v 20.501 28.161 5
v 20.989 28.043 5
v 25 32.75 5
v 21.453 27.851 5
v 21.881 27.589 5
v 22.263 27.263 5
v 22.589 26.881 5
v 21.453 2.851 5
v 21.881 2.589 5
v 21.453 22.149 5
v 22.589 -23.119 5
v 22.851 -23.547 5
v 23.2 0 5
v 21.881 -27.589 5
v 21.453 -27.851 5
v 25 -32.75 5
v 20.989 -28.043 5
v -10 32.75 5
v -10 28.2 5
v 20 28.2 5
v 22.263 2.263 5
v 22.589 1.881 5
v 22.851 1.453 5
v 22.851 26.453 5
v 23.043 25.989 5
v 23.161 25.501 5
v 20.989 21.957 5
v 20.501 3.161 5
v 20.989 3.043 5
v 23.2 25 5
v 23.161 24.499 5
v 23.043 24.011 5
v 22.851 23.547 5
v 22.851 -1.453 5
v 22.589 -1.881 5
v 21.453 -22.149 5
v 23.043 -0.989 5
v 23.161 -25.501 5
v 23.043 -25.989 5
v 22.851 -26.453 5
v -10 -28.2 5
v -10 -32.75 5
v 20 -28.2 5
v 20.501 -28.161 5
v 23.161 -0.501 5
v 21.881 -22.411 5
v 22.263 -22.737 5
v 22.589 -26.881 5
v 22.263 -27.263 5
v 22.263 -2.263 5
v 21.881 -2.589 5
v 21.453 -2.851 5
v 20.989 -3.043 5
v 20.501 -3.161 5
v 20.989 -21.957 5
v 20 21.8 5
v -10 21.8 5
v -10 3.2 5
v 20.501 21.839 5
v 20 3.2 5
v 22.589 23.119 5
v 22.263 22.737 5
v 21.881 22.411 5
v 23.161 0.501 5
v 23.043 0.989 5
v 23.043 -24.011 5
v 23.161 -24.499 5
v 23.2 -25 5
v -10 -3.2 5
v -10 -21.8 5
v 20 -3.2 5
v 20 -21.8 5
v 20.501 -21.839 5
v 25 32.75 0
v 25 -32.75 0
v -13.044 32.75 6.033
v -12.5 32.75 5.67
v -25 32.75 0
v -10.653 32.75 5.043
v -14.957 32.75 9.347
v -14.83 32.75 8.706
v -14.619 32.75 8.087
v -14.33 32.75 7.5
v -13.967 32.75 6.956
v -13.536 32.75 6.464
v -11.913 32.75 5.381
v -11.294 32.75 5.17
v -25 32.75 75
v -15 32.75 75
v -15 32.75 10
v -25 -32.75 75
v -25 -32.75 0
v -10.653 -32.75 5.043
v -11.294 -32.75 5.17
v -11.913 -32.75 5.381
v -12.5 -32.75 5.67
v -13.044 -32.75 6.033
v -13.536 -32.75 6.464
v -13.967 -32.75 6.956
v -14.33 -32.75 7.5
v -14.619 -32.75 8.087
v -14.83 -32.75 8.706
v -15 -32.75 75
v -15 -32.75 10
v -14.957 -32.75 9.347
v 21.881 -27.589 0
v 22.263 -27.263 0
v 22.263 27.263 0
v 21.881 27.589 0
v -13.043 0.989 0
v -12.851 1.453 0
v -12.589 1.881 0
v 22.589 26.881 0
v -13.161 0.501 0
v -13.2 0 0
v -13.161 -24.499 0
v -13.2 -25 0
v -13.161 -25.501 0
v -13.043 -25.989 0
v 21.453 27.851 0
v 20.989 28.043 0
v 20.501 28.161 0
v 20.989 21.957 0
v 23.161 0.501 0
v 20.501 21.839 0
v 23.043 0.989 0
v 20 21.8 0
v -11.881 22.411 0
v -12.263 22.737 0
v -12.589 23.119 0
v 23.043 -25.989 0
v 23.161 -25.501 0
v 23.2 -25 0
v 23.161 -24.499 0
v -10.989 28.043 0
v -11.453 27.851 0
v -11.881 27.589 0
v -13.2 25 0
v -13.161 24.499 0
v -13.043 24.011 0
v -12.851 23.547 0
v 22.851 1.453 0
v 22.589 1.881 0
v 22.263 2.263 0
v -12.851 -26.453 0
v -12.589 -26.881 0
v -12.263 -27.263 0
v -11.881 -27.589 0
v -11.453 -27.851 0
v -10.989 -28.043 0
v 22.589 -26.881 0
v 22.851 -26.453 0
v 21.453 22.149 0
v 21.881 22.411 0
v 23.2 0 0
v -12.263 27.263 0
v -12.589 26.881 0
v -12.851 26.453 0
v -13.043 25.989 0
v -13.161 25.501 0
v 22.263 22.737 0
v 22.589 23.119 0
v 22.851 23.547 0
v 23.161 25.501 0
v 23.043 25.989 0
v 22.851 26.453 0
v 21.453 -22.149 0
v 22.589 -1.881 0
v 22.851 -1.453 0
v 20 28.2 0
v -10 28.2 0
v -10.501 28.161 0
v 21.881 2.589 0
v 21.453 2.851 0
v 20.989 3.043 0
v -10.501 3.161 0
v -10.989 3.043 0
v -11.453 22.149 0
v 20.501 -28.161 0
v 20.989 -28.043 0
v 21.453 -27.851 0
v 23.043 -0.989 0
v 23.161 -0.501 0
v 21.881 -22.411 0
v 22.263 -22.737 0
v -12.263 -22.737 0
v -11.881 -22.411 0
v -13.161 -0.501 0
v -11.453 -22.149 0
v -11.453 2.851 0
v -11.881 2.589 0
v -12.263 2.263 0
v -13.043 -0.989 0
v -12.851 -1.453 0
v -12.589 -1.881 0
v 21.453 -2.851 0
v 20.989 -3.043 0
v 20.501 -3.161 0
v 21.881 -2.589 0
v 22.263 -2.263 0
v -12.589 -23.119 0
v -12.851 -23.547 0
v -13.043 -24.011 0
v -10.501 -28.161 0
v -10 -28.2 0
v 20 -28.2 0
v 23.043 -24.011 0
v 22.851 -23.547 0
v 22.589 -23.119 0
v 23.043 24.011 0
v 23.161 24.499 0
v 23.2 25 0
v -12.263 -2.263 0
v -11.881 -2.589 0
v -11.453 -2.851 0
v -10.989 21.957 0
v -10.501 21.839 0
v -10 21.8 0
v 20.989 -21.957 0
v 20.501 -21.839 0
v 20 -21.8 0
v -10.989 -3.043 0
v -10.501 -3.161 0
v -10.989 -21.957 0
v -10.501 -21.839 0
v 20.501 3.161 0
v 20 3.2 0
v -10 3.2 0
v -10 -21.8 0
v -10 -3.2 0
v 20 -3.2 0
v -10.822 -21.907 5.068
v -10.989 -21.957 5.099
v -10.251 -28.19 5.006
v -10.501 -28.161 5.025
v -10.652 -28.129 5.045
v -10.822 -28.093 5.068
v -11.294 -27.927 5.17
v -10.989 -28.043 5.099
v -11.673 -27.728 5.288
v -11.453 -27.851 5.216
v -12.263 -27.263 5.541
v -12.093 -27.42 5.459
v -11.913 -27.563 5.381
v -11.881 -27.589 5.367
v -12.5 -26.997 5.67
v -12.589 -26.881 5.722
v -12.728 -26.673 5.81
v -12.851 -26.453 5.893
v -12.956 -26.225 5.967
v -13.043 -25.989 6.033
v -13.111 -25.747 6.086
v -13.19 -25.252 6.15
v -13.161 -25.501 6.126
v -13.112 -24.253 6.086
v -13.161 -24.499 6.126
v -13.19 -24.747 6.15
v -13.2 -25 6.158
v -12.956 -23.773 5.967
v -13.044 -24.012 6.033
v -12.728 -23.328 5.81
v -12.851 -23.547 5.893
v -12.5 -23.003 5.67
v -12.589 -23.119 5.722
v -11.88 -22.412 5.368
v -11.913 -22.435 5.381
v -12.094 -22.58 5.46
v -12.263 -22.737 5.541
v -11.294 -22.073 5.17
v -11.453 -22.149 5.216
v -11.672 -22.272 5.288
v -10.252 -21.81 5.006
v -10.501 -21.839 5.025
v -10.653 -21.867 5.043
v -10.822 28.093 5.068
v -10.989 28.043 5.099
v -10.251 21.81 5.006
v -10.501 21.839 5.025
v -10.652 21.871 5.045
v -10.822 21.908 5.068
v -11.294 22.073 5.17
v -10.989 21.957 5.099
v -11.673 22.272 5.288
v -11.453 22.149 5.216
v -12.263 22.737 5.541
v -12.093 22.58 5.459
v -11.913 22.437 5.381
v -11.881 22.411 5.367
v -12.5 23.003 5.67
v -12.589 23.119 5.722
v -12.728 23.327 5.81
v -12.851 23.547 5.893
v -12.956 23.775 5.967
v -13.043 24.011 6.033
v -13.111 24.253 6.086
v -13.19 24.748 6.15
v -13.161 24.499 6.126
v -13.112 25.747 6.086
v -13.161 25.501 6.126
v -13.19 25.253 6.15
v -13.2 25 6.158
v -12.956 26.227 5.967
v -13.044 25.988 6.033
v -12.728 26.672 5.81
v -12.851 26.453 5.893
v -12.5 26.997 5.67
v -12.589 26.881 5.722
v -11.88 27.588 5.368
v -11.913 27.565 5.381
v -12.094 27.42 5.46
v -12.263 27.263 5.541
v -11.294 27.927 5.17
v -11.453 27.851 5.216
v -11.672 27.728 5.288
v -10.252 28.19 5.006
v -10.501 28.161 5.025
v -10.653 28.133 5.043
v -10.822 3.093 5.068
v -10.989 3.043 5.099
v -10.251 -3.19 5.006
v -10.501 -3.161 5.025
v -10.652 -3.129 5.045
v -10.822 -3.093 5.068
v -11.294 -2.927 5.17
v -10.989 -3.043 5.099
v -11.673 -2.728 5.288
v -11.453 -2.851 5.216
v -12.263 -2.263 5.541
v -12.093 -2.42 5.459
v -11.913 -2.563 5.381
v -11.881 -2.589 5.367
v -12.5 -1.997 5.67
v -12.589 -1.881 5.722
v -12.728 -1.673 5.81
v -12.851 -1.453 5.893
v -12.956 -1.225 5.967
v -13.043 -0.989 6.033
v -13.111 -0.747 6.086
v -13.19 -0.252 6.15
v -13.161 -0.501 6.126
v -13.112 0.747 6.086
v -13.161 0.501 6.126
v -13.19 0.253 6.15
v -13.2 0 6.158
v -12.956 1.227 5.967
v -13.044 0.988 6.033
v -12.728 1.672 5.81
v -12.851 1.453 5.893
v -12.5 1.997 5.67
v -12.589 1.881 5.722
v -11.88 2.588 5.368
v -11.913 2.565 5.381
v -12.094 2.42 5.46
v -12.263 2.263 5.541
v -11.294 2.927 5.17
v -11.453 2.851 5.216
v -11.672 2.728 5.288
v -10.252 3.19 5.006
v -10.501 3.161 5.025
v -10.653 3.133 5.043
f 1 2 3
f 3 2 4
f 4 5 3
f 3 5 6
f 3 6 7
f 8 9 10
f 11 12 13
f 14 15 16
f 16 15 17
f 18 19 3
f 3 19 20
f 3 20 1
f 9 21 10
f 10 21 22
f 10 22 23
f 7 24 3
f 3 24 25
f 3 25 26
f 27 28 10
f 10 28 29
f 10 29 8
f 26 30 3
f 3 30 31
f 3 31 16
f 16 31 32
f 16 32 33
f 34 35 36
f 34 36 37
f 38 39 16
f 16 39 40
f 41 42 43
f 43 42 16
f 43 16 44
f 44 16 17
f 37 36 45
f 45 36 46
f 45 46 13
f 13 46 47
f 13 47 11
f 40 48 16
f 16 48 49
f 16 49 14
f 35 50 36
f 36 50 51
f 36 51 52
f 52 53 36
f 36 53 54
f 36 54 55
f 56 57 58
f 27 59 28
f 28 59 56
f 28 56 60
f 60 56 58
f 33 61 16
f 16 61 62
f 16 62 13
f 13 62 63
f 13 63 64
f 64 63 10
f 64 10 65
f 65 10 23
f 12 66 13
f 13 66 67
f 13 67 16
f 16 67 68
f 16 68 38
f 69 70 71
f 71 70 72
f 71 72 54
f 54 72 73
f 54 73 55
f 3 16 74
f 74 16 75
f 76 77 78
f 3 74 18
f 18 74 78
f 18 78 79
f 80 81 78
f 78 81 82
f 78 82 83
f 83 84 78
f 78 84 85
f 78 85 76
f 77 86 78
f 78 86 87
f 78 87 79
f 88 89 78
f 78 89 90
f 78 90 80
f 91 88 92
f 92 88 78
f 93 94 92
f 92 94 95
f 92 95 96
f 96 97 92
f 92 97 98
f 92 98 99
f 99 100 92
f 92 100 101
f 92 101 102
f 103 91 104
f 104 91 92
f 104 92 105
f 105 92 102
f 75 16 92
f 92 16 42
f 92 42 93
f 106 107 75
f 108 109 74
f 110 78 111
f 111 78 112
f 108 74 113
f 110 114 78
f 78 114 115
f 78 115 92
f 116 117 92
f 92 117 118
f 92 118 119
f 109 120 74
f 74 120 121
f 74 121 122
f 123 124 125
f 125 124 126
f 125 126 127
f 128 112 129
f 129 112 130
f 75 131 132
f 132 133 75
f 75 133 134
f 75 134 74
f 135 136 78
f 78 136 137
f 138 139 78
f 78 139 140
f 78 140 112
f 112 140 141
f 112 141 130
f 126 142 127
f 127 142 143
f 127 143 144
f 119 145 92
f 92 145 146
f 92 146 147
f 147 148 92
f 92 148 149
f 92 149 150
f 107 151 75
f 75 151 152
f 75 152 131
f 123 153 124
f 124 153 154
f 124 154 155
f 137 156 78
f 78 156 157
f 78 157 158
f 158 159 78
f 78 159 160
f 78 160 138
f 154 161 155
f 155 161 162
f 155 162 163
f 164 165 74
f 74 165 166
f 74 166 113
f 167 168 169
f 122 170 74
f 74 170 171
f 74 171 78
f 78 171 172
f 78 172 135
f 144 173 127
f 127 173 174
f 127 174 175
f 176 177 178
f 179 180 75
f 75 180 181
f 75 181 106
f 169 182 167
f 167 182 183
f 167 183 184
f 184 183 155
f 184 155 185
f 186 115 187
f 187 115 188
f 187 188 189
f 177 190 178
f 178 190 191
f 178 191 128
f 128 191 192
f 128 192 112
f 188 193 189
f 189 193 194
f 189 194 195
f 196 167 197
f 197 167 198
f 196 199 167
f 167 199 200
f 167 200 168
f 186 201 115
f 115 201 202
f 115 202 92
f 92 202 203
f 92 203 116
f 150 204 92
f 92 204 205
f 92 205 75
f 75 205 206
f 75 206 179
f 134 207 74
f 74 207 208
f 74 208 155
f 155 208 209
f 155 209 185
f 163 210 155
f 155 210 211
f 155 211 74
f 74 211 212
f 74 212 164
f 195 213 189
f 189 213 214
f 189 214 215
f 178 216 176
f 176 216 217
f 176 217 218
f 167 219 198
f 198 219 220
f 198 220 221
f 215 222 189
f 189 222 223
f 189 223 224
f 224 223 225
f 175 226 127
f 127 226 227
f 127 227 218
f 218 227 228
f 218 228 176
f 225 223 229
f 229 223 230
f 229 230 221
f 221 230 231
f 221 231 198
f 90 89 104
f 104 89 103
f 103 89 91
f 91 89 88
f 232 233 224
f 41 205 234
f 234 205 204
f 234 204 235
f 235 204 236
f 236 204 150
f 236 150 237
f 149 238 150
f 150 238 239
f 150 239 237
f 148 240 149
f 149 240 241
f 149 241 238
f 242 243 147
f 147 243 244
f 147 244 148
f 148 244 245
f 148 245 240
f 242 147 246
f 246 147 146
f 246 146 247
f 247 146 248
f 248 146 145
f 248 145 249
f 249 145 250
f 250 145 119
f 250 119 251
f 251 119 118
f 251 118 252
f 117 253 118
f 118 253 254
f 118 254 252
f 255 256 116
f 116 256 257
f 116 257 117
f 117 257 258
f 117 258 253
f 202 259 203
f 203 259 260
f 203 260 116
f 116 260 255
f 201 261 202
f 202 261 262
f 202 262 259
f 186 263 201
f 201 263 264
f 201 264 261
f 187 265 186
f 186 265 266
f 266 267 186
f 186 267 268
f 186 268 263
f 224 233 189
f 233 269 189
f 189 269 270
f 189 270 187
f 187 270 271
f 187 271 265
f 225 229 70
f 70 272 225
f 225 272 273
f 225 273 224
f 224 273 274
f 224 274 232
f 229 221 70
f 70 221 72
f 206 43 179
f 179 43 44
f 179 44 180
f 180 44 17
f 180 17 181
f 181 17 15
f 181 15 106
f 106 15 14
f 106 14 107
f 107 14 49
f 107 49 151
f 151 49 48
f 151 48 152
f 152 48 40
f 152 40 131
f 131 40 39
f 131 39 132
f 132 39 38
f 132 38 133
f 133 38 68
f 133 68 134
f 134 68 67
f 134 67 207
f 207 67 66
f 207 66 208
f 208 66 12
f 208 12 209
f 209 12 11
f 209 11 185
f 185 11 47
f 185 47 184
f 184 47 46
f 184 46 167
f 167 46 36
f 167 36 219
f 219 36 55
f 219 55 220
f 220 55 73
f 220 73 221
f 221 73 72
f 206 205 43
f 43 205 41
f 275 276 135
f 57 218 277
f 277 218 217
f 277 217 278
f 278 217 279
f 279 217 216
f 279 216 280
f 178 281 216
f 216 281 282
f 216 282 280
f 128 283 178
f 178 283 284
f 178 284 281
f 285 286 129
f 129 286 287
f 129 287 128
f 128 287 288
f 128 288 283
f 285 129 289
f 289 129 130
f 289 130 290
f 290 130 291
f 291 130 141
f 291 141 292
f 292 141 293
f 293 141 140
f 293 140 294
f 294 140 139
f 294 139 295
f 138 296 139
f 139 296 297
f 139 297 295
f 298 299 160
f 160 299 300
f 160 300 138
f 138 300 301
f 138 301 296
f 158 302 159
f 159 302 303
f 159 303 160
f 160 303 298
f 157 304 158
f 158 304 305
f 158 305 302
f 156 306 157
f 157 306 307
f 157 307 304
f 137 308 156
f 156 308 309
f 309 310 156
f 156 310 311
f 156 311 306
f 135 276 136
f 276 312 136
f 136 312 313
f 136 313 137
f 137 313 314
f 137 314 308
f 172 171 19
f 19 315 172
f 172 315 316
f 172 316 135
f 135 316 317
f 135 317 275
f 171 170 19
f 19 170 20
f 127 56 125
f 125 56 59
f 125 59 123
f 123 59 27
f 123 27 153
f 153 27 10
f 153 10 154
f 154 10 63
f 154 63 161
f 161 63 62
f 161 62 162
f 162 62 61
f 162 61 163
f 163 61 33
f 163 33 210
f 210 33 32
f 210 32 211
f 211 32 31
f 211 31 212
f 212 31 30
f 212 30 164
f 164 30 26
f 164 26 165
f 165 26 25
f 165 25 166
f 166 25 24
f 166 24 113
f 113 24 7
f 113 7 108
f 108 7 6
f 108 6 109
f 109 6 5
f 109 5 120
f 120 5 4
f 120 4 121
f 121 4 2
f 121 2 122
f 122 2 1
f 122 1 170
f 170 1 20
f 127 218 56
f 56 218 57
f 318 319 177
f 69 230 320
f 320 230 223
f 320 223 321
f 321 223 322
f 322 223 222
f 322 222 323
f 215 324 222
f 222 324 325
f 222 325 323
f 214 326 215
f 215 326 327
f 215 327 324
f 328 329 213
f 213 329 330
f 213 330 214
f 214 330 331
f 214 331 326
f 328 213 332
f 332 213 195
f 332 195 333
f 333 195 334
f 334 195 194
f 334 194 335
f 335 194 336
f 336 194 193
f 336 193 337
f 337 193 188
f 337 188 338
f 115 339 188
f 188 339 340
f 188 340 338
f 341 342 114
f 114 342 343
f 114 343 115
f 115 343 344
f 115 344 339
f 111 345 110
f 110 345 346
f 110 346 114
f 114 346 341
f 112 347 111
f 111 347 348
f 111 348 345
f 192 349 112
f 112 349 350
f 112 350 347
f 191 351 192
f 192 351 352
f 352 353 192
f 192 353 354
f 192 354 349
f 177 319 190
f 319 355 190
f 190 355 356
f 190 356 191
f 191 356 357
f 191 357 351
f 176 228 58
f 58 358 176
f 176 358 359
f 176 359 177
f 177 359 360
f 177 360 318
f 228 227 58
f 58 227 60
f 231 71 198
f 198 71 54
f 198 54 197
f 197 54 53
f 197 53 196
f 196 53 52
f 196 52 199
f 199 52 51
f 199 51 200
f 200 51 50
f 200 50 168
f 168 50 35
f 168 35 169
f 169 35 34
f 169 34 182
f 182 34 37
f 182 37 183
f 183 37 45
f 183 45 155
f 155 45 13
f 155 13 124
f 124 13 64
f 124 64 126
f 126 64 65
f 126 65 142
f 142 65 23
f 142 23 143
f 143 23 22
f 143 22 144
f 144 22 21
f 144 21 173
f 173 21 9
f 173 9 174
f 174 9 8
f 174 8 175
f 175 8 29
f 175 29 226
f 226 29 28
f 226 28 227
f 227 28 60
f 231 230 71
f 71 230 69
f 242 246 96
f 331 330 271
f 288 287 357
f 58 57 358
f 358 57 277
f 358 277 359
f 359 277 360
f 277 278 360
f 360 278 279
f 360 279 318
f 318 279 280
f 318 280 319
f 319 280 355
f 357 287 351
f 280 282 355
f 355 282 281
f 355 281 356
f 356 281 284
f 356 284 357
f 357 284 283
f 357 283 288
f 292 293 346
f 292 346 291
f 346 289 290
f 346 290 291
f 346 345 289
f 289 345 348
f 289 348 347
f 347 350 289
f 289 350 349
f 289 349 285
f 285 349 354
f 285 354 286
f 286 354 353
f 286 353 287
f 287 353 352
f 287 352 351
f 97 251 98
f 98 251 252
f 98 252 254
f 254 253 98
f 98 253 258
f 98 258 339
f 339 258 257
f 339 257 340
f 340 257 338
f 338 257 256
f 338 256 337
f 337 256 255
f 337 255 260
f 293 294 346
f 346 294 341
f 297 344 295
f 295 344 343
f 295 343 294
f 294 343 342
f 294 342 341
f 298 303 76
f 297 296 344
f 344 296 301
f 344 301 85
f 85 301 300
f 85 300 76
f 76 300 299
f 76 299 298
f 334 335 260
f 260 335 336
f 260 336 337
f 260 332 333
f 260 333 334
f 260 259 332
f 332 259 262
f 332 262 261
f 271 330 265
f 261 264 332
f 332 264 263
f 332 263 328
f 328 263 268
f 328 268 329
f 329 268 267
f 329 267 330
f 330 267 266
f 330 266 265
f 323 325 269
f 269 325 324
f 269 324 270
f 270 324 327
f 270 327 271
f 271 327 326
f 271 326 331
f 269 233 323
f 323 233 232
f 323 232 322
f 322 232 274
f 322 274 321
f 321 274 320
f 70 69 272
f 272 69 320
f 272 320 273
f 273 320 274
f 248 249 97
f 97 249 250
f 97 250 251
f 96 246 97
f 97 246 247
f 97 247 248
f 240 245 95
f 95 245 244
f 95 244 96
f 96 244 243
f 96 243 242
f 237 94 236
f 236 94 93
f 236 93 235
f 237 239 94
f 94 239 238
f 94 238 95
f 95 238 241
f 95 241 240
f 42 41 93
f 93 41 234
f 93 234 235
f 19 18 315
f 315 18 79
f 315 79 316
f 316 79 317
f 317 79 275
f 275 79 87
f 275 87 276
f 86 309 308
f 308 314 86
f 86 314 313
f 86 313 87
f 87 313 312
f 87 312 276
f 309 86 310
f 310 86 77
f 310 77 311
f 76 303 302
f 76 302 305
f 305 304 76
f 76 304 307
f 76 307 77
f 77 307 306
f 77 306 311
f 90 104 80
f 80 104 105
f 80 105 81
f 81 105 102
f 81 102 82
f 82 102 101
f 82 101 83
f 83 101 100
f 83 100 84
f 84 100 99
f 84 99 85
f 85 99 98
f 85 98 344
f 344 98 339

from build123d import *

# Parameters (mm, degrees)
SKETCH_1_W          = 50
SKETCH_1_H          = 65.5
EXTRUDE_1_DEPTH     = 5
SKETCH_4_W          = 10
SKETCH_4_H          = 65.5
EXTRUDE_2_DEPTH     = 70
CUT_EXTRUDE_1_DEPTH = 5
FILLET_7_R          = 5


with BuildPart() as part:
    # 스케치1 → 보스-돌출1 (new body)
    with BuildSketch(Plane.XY):
        Rectangle(SKETCH_1_W, SKETCH_1_H)
    extrude(amount=EXTRUDE_1_DEPTH)

    # 스케치4 → 보스-돌출2 (add)
    with BuildSketch(Plane.XY.offset(5)):
        with Locations((-20, 0)):
            Rectangle(SKETCH_4_W, SKETCH_4_H)
    extrude(amount=EXTRUDE_2_DEPTH)

    # 스케치2 → 컷-돌출1 (cut)
    with BuildSketch(Plane.XY.offset(5)):
        with BuildLine():
            Line((-10, -28.2), (20, -28.2))
            ThreePointArc((20, -28.2), (23.2, -25), (20, -21.8))
            Line((20, -21.8), (-10, -21.8))
            ThreePointArc((-10, -21.8), (-13.2, -25), (-10, -28.2))
        make_face()
        with BuildLine():
            Line((-10, -3.2), (20, -3.2))
            ThreePointArc((20, -3.2), (23.2, 0), (20, 3.2))
            Line((20, 3.2), (-10, 3.2))
            ThreePointArc((-10, 3.2), (-13.2, 0), (-10, -3.2))
        make_face()
        with BuildLine():
            Line((-10, 21.8), (20, 21.8))
            ThreePointArc((20, 21.8), (23.2, 25), (20, 28.2))
            Line((20, 28.2), (-10, 28.2))
            ThreePointArc((-10, 28.2), (-13.2, 25), (-10, 21.8))
        make_face()
    extrude(amount=-CUT_EXTRUDE_1_DEPTH, mode=Mode.SUBTRACT)

    # 필렛7
    # the kernel refuses this fillet: 5 mm, written as the material it adds along each edge
    with BuildSketch(Plane(origin=(-15, -32.75, 5), x_dir=(0, 0, 1), z_dir=(0, 1, 0))) as fillet_7_piece_1_section:
        with BuildLine():
            CenterArc((FILLET_7_R, FILLET_7_R), FILLET_7_R, 180, 90)
            Line((0, FILLET_7_R), (0, 0))
            Line((0, 0), (FILLET_7_R, 0))
        make_face()
    fillet_7_piece_1 = extrude(amount=65.5, mode=Mode.PRIVATE)
    fillet_7_piece_1 = fillet_7_piece_1 - Plane(origin=(-10, -25, 6.131975571), x_dir=(0, 1, 0), z_dir=(0, 0, 1)) * Cylinder(3.2, 151, mode=Mode.PRIVATE)
    fillet_7_piece_1 = fillet_7_piece_1 - Plane(origin=(-10, 0, 6.131975571), x_dir=(0, 1, 0), z_dir=(0, 0, 1)) * Cylinder(3.2, 151, mode=Mode.PRIVATE)
    fillet_7_piece_1 = fillet_7_piece_1 - Plane(origin=(-10, 25, 6.131975571), x_dir=(0, 1, 0), z_dir=(0, 0, 1)) * Cylinder(3.2, 151, mode=Mode.PRIVATE)
    add(fillet_7_piece_1)


solid = part.part
